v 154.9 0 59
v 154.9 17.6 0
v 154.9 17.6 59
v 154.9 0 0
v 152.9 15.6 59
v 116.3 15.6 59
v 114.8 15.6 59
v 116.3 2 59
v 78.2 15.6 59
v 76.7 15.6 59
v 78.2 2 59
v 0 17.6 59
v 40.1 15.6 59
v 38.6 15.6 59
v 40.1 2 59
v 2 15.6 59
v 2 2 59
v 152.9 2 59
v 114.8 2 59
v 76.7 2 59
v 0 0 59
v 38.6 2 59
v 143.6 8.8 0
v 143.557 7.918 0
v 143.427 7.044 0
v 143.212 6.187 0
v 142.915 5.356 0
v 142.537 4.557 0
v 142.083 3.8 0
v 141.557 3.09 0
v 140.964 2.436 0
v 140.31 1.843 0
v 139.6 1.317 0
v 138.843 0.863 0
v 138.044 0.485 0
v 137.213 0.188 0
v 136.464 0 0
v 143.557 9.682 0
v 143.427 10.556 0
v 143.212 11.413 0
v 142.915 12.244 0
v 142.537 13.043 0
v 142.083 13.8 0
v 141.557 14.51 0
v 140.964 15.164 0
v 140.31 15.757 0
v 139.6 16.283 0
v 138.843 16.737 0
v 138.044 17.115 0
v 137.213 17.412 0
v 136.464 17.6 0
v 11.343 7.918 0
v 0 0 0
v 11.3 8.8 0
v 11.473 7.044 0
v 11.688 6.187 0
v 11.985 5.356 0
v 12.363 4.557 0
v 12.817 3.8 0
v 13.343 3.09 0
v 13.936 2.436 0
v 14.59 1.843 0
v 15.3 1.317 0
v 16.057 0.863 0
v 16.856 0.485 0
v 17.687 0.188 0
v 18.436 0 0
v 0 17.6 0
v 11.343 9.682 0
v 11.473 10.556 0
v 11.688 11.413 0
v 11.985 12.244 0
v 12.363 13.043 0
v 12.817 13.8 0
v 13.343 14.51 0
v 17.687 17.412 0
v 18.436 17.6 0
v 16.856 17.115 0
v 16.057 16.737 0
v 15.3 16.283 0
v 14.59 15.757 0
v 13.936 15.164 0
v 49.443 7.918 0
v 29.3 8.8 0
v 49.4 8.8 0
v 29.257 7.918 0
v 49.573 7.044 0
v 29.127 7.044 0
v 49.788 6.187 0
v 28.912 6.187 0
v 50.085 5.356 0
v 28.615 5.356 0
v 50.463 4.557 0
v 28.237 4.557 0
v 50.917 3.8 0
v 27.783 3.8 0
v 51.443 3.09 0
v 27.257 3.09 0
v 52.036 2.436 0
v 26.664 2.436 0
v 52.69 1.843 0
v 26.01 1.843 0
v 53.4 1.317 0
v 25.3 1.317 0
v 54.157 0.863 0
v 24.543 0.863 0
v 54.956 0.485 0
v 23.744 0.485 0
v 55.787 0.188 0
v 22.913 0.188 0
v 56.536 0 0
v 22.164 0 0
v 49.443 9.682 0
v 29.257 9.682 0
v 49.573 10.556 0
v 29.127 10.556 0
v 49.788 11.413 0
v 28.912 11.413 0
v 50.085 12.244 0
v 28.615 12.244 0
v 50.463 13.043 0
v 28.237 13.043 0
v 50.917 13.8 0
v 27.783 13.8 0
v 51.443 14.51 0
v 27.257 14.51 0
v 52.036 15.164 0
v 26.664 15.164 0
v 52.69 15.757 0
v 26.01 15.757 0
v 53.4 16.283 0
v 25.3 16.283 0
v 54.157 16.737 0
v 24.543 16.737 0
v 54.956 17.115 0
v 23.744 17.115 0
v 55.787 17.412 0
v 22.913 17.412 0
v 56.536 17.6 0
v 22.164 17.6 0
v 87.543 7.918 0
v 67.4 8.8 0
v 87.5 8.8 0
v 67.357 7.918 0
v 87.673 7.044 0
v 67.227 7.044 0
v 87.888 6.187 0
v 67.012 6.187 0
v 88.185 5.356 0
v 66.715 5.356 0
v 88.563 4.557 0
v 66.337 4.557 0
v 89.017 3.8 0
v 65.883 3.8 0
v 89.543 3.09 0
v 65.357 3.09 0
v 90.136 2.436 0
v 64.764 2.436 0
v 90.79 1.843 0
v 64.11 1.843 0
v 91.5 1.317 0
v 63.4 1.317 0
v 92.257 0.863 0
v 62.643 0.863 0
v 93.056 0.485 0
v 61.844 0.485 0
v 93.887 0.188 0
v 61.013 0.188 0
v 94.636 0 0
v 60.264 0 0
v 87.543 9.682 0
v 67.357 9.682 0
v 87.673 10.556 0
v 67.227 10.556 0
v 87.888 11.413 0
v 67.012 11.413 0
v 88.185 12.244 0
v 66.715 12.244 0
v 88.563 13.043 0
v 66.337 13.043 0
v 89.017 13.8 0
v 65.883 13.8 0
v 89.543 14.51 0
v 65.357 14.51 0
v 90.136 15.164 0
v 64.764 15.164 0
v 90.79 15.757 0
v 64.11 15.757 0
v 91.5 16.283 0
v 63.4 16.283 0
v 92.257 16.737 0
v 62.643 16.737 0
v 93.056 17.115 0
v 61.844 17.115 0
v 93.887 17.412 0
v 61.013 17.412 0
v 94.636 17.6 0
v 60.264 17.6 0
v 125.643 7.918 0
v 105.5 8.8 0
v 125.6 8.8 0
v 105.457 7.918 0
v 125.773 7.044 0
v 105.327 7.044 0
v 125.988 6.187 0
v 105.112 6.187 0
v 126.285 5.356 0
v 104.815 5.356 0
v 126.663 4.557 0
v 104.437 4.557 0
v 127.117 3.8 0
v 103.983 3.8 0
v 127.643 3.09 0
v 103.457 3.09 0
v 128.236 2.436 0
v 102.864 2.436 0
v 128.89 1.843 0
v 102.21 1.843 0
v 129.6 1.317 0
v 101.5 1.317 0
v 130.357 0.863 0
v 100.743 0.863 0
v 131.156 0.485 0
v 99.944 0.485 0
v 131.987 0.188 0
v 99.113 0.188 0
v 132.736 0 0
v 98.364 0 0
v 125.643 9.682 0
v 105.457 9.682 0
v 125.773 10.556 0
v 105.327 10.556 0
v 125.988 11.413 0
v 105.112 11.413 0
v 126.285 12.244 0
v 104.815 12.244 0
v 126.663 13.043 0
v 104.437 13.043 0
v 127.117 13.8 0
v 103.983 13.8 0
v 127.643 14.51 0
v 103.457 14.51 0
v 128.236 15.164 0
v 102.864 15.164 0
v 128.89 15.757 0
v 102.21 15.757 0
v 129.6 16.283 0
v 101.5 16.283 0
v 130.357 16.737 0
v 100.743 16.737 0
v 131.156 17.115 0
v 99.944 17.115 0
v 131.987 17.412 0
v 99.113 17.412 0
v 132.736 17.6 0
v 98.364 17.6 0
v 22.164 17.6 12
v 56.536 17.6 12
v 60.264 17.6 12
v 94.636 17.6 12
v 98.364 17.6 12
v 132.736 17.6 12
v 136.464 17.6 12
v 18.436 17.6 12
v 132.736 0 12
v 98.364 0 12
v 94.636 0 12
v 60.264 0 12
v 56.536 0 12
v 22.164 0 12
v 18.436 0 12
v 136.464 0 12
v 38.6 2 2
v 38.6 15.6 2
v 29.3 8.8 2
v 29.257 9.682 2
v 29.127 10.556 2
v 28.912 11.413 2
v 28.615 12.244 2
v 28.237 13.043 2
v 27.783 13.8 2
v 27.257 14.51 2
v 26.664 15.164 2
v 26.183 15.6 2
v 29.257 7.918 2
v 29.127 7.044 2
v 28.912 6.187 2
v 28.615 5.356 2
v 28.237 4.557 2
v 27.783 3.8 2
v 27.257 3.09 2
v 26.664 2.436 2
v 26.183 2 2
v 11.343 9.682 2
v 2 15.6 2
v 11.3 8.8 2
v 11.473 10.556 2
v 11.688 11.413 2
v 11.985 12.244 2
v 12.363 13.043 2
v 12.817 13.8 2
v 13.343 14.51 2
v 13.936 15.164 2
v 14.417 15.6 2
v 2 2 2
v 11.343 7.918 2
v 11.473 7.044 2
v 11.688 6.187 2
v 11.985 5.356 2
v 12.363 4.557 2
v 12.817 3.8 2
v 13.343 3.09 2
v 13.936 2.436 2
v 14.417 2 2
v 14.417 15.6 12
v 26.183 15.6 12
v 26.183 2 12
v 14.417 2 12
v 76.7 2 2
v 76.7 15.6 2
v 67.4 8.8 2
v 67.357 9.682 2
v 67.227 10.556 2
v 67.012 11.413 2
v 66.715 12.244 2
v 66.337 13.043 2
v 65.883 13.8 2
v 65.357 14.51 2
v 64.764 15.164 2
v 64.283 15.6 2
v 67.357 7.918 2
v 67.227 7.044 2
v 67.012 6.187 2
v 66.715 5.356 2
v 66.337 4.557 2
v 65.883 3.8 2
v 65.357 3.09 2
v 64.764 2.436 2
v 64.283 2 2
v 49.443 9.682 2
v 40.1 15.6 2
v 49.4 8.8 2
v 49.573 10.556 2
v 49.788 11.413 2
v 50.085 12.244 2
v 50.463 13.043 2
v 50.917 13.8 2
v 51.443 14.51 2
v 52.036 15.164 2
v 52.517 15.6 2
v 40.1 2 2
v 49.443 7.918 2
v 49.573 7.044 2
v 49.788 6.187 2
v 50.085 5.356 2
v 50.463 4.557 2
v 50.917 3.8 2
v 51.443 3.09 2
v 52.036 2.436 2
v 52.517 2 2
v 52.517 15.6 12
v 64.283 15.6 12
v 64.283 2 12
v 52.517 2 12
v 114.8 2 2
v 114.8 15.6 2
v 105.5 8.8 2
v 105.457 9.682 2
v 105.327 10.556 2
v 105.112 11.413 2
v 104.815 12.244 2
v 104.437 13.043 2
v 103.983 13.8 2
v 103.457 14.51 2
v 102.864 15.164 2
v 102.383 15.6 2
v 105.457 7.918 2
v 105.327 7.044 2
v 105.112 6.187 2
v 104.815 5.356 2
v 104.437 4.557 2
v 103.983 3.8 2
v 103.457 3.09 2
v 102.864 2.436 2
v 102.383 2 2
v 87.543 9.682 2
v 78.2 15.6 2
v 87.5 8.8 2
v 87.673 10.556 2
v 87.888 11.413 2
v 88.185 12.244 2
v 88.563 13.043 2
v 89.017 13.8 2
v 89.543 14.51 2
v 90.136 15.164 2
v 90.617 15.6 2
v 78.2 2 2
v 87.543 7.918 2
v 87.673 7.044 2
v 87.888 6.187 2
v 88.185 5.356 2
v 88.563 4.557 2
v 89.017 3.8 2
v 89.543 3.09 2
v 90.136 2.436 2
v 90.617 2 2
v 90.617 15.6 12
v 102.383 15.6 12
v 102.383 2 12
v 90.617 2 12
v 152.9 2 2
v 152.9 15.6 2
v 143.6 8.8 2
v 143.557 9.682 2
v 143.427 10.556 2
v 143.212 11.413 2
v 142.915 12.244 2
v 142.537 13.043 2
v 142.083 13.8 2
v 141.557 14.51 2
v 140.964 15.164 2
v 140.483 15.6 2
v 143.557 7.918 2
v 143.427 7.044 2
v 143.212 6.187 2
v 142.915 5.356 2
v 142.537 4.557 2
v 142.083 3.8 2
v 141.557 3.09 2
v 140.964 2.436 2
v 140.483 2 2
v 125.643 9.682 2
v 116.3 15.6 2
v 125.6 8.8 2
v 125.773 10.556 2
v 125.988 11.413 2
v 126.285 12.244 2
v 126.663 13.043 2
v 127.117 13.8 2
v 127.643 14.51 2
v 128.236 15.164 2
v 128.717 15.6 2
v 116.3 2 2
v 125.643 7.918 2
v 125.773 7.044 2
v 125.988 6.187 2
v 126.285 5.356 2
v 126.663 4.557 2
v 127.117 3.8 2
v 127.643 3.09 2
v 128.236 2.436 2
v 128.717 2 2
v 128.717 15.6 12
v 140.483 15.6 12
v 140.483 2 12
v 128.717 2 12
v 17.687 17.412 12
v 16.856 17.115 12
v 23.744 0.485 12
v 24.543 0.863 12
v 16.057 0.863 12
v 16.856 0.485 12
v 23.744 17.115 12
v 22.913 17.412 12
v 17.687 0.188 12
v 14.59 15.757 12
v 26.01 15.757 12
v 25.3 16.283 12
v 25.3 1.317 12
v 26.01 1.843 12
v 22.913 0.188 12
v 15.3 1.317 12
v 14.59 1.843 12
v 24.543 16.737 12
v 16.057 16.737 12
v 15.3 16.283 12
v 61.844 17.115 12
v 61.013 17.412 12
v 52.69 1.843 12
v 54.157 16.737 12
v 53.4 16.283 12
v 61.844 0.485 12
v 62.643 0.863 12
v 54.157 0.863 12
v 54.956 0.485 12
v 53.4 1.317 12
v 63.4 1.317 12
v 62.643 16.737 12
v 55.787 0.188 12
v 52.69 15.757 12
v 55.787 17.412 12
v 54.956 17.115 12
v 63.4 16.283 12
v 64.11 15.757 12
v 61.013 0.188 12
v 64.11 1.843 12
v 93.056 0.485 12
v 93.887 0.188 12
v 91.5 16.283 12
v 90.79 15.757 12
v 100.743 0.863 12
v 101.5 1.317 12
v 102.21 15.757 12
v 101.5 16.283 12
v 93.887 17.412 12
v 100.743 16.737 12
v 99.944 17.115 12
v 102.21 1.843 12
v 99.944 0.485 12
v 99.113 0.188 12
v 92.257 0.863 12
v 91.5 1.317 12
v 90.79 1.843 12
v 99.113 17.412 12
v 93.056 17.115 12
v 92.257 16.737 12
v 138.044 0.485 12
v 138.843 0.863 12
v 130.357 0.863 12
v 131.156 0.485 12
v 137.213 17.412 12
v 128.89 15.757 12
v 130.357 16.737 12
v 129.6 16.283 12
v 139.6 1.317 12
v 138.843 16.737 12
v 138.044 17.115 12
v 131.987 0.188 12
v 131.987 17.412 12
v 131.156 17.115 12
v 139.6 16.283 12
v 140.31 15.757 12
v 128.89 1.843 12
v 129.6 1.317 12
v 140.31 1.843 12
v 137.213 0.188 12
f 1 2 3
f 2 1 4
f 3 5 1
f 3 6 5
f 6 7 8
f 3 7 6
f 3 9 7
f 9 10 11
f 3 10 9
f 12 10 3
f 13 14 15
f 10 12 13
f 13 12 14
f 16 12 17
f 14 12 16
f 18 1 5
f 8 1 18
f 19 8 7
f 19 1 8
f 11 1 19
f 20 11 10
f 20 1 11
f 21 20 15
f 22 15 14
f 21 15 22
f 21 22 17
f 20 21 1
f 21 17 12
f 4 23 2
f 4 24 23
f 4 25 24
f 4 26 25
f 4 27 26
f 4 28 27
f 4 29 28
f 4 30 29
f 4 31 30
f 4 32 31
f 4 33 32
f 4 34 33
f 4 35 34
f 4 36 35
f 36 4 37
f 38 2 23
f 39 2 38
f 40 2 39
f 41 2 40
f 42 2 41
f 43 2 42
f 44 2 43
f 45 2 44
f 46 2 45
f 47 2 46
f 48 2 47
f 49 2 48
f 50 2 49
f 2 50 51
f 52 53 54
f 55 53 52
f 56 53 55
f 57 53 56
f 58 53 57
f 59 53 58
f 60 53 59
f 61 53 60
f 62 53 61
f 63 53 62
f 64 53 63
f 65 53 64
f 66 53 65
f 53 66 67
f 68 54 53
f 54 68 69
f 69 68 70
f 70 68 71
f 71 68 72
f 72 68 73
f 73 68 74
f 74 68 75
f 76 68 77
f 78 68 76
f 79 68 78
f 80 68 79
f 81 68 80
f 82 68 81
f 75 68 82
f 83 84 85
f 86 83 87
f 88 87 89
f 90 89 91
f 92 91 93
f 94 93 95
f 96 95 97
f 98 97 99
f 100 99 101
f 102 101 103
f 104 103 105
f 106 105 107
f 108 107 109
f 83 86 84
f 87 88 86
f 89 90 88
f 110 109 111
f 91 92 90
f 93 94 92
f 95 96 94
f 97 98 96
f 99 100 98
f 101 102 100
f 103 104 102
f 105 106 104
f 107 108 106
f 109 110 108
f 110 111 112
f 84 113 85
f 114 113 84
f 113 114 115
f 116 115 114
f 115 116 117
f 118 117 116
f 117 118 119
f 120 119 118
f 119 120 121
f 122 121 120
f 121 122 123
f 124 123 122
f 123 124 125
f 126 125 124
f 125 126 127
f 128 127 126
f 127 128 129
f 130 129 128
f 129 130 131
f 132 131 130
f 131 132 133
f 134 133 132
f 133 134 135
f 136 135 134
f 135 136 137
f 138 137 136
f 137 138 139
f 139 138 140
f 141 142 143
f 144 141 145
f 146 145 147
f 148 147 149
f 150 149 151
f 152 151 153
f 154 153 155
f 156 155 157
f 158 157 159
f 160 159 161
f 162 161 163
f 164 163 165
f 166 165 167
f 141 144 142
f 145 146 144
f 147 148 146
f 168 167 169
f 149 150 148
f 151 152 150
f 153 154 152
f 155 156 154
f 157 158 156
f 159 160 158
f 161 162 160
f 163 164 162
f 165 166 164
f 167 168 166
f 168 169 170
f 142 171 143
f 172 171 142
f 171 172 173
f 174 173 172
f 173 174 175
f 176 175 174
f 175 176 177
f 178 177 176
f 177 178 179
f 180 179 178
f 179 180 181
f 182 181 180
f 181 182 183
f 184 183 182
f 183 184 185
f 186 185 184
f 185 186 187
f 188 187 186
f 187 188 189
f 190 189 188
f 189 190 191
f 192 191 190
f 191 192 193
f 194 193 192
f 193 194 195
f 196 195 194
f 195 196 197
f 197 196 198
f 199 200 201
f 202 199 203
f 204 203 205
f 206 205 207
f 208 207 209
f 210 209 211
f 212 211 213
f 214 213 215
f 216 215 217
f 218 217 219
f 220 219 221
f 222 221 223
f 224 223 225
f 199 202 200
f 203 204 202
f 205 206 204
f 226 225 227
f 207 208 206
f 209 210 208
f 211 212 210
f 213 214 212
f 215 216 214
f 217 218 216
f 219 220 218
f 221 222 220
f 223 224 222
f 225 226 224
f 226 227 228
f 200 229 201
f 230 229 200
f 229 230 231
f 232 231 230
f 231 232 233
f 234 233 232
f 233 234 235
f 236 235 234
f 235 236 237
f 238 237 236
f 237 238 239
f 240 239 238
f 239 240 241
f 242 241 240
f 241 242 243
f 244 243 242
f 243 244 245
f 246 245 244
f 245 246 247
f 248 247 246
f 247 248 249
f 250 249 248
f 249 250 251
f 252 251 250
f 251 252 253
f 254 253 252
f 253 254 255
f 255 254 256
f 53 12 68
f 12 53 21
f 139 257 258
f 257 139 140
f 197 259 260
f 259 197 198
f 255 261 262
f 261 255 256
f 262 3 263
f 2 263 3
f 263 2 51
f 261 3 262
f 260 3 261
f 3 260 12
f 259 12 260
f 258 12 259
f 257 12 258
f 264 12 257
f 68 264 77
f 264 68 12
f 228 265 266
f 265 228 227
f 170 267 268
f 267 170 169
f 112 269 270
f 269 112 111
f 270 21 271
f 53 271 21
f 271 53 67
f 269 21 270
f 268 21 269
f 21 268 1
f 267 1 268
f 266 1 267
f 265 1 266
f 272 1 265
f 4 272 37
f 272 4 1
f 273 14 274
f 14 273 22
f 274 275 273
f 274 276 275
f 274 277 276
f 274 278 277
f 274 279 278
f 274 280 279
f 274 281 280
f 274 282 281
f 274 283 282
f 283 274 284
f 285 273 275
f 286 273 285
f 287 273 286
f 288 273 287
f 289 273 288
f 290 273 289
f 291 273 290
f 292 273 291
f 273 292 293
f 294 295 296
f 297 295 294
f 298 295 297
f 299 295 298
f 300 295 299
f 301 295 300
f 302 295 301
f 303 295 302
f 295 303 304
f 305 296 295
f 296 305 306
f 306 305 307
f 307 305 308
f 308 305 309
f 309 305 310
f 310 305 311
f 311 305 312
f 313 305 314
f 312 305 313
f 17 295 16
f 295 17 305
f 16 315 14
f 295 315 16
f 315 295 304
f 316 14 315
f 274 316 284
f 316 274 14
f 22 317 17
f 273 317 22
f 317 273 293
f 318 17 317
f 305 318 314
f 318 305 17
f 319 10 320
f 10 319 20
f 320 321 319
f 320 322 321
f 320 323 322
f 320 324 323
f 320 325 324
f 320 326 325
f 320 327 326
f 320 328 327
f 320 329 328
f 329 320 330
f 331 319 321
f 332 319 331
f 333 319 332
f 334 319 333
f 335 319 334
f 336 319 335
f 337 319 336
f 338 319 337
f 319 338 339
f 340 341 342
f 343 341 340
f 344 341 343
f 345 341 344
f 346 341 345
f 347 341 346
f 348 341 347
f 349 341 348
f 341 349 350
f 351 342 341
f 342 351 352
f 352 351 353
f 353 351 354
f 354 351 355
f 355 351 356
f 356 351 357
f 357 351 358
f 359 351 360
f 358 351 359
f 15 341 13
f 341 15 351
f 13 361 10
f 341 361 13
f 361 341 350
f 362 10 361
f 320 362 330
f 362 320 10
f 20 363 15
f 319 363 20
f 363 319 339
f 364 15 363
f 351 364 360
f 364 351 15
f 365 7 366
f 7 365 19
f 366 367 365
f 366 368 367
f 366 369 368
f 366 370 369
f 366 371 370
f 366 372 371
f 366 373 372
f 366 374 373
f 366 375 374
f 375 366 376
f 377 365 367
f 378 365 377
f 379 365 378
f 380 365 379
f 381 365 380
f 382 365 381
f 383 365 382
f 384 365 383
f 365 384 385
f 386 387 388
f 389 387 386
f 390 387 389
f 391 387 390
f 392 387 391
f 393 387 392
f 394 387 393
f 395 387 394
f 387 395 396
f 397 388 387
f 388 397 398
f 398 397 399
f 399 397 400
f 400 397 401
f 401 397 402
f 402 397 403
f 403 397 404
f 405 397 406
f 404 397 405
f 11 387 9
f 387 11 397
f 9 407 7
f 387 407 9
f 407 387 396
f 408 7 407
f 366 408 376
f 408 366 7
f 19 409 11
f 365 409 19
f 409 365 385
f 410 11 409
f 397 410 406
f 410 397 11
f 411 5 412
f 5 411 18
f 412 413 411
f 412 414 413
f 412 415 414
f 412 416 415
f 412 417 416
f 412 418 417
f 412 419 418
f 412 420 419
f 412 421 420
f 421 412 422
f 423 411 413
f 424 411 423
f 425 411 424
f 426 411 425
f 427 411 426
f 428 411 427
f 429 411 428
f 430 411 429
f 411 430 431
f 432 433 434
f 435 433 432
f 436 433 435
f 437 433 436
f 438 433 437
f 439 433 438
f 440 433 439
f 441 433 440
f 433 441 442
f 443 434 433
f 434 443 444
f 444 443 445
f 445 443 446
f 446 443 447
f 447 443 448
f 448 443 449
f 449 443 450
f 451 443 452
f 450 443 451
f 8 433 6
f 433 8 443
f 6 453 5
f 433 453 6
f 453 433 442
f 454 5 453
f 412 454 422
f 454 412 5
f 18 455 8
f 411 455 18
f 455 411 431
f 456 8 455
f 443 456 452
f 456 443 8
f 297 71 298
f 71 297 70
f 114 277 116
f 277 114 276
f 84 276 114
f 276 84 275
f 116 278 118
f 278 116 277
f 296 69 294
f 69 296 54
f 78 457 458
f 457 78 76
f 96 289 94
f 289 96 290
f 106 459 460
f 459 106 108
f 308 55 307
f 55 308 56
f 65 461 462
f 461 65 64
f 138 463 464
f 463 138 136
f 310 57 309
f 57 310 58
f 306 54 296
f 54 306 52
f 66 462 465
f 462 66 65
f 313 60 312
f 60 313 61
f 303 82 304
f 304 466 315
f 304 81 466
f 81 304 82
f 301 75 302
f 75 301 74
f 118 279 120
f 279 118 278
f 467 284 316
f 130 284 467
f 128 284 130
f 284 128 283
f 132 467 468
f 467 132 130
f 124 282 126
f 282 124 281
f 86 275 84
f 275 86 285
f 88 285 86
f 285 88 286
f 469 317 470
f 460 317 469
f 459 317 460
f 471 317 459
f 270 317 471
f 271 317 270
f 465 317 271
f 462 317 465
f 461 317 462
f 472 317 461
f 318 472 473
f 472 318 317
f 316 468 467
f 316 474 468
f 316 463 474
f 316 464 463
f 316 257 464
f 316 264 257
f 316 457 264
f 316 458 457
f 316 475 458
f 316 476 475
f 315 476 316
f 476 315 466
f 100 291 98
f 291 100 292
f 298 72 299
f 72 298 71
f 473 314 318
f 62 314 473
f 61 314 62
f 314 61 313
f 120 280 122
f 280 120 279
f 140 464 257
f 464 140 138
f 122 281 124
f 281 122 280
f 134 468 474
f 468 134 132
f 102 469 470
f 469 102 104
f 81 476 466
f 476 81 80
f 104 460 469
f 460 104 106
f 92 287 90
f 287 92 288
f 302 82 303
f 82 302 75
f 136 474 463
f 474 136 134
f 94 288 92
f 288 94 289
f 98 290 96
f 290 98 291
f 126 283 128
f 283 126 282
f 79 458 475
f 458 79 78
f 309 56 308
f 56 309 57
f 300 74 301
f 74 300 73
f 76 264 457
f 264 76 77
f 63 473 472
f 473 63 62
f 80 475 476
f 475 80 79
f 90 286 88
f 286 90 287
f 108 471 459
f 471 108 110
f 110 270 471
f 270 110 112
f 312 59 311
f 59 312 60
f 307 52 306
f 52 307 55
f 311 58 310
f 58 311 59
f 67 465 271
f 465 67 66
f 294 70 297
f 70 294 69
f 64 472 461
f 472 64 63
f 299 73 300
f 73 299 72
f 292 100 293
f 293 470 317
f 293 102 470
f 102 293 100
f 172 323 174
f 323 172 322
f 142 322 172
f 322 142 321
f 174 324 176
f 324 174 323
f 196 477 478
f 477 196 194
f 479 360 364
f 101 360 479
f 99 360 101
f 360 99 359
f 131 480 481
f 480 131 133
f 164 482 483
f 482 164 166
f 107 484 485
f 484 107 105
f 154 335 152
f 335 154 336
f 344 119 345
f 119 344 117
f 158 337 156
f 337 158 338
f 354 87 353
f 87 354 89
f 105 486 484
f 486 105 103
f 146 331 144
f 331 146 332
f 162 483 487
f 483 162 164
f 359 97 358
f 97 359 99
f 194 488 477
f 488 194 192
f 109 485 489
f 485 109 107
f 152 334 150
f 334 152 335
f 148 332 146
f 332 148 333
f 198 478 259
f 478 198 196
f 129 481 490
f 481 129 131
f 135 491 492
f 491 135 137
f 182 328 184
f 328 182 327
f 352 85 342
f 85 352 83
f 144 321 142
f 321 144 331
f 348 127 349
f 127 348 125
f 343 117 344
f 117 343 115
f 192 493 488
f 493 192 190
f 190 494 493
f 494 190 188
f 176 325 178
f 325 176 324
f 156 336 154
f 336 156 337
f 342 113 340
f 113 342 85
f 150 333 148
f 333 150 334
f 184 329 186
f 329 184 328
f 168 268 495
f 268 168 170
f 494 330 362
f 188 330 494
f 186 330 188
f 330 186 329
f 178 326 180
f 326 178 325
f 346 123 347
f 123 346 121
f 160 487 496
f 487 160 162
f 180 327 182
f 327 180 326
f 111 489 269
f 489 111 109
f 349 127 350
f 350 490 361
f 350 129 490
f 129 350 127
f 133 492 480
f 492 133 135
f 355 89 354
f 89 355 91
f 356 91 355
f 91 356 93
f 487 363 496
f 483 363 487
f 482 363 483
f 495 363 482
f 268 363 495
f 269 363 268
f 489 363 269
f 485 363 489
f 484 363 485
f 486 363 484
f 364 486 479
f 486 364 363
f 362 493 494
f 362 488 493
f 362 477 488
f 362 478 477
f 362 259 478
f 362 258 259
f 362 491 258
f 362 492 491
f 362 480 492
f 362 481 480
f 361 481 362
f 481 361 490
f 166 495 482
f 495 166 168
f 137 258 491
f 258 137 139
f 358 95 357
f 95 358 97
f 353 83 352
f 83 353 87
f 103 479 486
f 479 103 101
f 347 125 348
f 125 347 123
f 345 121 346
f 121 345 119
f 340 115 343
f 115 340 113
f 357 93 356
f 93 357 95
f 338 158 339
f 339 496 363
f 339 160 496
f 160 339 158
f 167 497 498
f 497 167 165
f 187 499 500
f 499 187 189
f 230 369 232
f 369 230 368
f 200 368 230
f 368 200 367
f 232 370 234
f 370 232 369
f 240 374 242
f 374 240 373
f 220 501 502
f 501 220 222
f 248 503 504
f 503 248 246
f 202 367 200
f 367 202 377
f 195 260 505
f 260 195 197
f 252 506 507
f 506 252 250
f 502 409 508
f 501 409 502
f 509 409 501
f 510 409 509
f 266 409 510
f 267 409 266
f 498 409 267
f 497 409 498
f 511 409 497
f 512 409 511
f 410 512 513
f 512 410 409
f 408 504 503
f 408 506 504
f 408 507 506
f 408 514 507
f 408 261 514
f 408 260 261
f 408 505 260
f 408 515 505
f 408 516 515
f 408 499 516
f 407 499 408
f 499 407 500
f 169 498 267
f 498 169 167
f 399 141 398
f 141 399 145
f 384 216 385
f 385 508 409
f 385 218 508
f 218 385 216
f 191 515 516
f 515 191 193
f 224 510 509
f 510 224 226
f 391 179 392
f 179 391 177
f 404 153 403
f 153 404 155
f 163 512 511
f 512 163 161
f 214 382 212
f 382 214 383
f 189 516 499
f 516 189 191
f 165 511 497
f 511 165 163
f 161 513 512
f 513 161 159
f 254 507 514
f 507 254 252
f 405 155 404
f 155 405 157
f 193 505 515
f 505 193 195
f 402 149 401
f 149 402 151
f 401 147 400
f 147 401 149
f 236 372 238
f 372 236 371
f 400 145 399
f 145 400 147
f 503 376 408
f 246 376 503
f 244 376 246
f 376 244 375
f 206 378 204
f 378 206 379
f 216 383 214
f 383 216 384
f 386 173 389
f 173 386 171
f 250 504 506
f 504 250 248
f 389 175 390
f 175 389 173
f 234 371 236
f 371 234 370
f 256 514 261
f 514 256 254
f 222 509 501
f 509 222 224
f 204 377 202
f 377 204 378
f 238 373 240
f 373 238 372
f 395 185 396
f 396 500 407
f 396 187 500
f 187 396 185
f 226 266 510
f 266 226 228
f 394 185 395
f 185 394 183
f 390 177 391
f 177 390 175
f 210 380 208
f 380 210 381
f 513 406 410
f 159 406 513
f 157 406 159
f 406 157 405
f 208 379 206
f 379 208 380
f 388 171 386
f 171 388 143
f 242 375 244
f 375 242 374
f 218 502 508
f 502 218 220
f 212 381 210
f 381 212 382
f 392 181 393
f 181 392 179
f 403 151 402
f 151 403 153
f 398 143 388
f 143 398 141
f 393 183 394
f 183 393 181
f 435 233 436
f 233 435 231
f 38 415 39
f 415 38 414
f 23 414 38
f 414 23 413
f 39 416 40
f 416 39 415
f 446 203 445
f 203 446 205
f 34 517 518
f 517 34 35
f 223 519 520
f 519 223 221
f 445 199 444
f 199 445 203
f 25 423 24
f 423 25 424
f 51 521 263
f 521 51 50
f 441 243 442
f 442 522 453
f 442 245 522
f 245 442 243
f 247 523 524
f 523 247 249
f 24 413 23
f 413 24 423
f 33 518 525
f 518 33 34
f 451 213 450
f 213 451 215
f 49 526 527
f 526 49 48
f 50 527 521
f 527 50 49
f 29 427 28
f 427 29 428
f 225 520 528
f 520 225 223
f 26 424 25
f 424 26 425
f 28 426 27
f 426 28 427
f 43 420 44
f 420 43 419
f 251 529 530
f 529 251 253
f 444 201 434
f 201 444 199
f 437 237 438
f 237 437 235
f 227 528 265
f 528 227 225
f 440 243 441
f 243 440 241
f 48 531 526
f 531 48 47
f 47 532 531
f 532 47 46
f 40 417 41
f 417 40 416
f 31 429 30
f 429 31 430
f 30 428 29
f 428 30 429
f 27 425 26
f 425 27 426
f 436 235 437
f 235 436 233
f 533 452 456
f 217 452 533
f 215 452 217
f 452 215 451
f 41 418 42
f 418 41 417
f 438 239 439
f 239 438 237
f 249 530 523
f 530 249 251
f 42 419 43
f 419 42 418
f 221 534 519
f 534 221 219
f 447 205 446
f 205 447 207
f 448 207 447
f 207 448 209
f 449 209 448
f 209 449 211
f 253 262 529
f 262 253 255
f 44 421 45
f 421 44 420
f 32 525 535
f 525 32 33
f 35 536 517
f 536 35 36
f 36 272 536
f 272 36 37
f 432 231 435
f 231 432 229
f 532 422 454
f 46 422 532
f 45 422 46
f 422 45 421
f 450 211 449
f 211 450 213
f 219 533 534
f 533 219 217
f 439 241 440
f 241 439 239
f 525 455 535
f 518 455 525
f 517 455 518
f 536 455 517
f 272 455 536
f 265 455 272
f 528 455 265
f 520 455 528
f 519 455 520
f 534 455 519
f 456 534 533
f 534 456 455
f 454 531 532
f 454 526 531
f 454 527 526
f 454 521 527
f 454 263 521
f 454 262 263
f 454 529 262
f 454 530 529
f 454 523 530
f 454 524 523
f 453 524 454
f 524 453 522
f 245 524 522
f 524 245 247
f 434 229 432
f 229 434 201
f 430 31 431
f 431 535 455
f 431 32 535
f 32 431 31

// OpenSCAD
$fn=64;
// Parameters
batt_h=56; // height
batt_w=36; // width (along length)
batt_d=13; // depth
clearance=0.6;
slot_w=batt_w+clearance;
slot_d=batt_d+clearance;
wall=2;
divider=1.5;
base=2;
inner_h=batt_h+1; // clearance above
case_h=base+inner_h;
slots=4;

length = wall*2 + slots*slot_w + (slots-1)*divider;
depth = wall*2 + slot_d;

module case_shell(){
    cube([length, depth, case_h], center=false);
}

module slot_cut(i){
    x = wall + i*(slot_w+divider);
    y = wall;
    translate([x, y, base])
        cube([slot_w, slot_d, inner_h+1], center=false);
}

module finger_hole(i){
    x = wall + i*(slot_w+divider) + slot_w/2;
    y = wall + slot_d/2;
    translate([x, y, 0])
        cylinder(d=18, h=base+10, center=false);
}

module snap_tabs(){
    tab_depth=0.8;
    tab_height=2;
    tab_len=8;
    zpos=base+inner_h-10;
    for(i=[0:slots-1]){
        x0 = wall + i*(slot_w+divider) + (slot_w-tab_len)/2;
        // front wall tab
        translate([x0, wall-0.01, zpos])
            cube([tab_len, tab_depth, tab_height], center=false);
        // back wall tab
        translate([x0, wall+slot_d-tab_depth+0.01, zpos])
            cube([tab_len, tab_depth, tab_height], center=false);
    }
}

difference(){
    union(){
        case_shell();
        snap_tabs();
    }
    // cut slots
    for(i=[0:slots-1]) slot_cut(i);
    // finger holes
    for(i=[0:slots-1]) finger_hole(i);
}
